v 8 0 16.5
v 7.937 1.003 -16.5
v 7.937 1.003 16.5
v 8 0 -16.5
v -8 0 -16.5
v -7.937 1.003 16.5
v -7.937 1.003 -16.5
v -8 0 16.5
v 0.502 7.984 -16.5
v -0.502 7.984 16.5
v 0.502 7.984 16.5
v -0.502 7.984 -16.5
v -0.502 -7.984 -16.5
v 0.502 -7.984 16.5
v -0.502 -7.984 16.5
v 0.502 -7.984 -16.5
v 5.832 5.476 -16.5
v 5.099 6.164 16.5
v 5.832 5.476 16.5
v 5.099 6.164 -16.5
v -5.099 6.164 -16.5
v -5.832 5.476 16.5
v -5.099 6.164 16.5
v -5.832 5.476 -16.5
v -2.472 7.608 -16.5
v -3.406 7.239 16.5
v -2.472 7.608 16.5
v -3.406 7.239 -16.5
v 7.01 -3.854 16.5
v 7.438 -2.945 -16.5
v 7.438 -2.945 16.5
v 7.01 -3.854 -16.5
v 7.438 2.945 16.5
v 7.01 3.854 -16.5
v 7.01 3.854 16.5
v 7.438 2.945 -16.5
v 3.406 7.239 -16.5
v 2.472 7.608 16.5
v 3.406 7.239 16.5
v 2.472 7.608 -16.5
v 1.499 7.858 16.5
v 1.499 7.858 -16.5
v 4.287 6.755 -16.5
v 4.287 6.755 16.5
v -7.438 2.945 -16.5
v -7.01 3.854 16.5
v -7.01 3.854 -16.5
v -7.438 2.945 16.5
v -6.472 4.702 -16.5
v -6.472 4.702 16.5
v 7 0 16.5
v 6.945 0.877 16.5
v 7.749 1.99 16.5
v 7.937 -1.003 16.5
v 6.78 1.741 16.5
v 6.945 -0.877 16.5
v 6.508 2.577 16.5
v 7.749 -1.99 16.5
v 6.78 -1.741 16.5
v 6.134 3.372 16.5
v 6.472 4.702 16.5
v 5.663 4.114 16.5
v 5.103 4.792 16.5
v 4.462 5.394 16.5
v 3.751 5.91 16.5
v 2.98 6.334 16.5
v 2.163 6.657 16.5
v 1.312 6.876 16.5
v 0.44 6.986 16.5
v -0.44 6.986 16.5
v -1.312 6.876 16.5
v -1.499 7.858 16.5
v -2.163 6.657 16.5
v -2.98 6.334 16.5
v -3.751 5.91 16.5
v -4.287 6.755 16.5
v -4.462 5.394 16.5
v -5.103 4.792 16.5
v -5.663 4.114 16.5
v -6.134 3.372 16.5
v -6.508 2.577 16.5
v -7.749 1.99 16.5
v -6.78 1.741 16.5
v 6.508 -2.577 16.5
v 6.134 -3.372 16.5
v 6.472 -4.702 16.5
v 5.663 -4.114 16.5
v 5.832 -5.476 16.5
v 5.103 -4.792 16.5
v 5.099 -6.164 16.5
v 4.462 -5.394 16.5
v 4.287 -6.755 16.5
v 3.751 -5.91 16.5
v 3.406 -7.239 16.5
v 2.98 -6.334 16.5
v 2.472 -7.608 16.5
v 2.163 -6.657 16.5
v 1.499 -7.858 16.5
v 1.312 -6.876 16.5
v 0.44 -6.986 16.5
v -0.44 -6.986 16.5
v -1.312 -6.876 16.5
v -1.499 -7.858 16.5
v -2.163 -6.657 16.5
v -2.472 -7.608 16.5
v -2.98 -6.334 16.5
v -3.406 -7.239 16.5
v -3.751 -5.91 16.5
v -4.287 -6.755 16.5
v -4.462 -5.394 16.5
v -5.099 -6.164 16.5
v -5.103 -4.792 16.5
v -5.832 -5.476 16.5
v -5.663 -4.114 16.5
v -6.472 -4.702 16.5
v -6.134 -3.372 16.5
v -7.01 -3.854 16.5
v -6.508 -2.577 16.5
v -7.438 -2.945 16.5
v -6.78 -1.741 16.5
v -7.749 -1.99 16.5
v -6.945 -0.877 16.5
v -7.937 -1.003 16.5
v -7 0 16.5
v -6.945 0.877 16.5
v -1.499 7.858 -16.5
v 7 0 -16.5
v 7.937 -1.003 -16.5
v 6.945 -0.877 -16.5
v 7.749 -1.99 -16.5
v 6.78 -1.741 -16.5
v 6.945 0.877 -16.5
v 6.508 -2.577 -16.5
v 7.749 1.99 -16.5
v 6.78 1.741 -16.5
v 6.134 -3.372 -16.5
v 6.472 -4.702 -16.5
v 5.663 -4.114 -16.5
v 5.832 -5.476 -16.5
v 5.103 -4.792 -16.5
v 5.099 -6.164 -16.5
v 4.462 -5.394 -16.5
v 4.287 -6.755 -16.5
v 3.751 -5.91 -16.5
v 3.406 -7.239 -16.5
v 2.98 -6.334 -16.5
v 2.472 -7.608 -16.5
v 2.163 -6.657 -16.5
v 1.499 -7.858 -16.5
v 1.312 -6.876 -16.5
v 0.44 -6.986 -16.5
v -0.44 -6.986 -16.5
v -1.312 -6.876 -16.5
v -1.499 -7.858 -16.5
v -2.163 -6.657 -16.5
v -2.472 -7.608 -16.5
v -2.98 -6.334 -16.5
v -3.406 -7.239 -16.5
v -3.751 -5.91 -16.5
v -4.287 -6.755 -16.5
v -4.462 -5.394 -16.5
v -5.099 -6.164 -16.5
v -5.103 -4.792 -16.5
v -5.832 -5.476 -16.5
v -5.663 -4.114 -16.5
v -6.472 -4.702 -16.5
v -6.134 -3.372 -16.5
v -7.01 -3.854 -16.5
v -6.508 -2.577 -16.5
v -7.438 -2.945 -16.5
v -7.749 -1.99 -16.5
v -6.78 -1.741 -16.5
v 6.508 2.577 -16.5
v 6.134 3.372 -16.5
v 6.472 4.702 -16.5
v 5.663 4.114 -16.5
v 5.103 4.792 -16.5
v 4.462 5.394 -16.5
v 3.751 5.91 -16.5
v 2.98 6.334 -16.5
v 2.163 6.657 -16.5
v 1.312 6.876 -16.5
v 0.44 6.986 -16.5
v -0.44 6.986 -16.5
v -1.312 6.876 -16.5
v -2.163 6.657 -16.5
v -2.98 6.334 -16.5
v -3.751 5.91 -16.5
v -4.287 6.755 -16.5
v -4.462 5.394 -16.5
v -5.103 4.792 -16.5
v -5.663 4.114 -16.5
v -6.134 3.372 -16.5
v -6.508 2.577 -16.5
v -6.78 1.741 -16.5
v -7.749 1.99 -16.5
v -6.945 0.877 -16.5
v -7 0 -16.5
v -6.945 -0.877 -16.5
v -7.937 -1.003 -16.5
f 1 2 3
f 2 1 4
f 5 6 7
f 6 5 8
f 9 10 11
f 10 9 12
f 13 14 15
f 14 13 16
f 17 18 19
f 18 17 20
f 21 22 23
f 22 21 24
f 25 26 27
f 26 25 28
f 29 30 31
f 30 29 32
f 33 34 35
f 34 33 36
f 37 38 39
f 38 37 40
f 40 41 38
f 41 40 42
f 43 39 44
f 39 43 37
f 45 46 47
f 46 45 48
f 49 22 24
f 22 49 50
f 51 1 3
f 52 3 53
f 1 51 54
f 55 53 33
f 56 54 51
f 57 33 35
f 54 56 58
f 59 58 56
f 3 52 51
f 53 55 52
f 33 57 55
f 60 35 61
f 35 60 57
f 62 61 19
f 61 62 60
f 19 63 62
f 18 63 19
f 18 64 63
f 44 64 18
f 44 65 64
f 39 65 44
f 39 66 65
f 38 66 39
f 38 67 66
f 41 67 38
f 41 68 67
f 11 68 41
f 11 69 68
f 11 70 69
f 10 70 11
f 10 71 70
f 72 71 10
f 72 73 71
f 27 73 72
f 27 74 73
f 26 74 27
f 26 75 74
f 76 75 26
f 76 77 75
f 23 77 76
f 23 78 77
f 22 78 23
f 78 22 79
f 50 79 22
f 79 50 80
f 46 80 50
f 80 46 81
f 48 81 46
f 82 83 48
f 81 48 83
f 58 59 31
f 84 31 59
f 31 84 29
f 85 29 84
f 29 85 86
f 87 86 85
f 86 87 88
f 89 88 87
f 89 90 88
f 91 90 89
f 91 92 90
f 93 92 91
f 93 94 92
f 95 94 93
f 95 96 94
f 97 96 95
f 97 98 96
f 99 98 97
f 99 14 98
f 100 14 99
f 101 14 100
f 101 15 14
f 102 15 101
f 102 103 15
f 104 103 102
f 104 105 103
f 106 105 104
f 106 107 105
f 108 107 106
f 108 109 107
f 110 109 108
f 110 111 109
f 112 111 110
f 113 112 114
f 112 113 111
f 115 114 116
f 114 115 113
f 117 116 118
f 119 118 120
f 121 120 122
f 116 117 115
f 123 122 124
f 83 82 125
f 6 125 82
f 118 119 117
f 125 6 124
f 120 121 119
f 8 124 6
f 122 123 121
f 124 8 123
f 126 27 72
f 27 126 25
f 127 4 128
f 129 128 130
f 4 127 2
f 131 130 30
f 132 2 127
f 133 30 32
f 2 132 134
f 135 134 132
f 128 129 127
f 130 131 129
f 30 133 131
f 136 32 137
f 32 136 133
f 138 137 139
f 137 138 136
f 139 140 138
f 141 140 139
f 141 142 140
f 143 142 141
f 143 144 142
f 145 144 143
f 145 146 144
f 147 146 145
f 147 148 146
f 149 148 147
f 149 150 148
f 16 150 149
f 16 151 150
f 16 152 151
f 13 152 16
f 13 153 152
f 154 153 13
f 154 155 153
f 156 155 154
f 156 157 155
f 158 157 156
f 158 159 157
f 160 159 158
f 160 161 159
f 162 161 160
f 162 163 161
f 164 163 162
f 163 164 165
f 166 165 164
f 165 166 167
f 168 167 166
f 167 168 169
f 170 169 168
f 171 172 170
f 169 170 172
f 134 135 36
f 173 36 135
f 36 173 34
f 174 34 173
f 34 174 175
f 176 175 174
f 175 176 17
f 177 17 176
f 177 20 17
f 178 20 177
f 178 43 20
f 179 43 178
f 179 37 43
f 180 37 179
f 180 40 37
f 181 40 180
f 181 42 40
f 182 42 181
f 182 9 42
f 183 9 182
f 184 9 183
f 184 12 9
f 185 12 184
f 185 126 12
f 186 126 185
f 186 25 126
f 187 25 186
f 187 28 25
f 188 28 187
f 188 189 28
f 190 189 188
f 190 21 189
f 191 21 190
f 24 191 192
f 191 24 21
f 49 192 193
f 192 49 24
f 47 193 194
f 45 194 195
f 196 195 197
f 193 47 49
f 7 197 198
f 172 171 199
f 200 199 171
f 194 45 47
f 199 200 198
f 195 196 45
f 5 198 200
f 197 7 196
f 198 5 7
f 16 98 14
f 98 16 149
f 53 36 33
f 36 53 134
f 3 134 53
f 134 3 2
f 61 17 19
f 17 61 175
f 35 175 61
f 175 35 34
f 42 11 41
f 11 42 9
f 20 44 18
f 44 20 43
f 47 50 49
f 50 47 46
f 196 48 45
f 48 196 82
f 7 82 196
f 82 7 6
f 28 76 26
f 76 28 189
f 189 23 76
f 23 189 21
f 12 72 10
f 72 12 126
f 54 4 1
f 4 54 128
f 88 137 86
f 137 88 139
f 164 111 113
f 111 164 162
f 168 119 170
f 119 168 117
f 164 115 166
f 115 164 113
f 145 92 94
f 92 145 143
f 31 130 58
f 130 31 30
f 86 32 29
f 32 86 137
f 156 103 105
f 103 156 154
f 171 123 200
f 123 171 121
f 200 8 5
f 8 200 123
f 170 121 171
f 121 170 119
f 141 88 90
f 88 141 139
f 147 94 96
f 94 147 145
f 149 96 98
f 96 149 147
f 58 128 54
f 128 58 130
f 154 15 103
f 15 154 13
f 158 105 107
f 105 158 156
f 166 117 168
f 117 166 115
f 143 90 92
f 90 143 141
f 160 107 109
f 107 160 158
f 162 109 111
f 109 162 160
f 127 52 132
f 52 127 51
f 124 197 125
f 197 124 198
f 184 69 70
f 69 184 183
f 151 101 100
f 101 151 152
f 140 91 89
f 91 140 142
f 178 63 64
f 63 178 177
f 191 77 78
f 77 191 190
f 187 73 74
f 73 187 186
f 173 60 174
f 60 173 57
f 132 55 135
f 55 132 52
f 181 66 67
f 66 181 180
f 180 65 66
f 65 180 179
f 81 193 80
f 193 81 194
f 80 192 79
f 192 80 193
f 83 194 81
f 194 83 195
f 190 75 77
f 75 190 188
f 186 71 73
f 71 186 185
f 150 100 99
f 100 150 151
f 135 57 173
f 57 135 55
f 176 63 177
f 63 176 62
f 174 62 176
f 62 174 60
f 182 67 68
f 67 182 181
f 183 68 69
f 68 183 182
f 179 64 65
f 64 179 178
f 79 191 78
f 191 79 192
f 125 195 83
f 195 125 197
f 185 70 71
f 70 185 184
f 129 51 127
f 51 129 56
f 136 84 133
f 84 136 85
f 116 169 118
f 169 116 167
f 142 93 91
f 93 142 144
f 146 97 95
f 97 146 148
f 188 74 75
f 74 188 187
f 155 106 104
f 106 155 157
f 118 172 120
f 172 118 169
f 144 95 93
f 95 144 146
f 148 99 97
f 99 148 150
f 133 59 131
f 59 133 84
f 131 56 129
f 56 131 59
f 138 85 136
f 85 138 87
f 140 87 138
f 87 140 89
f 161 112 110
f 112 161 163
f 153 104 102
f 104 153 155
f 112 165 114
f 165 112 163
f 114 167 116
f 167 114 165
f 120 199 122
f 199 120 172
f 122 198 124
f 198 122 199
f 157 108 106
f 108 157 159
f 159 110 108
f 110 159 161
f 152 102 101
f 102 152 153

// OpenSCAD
$fn = 50;


difference() {
	union() {
		translate(v = [0, 0, -16.5000000000]) {
			cylinder(h = 33, r = 8.0000000000);
		}
	}
	union() {
		translate(v = [0, 0, -100.0000000000]) {
			cylinder(h = 200, r = 7);
		}
	}
}
